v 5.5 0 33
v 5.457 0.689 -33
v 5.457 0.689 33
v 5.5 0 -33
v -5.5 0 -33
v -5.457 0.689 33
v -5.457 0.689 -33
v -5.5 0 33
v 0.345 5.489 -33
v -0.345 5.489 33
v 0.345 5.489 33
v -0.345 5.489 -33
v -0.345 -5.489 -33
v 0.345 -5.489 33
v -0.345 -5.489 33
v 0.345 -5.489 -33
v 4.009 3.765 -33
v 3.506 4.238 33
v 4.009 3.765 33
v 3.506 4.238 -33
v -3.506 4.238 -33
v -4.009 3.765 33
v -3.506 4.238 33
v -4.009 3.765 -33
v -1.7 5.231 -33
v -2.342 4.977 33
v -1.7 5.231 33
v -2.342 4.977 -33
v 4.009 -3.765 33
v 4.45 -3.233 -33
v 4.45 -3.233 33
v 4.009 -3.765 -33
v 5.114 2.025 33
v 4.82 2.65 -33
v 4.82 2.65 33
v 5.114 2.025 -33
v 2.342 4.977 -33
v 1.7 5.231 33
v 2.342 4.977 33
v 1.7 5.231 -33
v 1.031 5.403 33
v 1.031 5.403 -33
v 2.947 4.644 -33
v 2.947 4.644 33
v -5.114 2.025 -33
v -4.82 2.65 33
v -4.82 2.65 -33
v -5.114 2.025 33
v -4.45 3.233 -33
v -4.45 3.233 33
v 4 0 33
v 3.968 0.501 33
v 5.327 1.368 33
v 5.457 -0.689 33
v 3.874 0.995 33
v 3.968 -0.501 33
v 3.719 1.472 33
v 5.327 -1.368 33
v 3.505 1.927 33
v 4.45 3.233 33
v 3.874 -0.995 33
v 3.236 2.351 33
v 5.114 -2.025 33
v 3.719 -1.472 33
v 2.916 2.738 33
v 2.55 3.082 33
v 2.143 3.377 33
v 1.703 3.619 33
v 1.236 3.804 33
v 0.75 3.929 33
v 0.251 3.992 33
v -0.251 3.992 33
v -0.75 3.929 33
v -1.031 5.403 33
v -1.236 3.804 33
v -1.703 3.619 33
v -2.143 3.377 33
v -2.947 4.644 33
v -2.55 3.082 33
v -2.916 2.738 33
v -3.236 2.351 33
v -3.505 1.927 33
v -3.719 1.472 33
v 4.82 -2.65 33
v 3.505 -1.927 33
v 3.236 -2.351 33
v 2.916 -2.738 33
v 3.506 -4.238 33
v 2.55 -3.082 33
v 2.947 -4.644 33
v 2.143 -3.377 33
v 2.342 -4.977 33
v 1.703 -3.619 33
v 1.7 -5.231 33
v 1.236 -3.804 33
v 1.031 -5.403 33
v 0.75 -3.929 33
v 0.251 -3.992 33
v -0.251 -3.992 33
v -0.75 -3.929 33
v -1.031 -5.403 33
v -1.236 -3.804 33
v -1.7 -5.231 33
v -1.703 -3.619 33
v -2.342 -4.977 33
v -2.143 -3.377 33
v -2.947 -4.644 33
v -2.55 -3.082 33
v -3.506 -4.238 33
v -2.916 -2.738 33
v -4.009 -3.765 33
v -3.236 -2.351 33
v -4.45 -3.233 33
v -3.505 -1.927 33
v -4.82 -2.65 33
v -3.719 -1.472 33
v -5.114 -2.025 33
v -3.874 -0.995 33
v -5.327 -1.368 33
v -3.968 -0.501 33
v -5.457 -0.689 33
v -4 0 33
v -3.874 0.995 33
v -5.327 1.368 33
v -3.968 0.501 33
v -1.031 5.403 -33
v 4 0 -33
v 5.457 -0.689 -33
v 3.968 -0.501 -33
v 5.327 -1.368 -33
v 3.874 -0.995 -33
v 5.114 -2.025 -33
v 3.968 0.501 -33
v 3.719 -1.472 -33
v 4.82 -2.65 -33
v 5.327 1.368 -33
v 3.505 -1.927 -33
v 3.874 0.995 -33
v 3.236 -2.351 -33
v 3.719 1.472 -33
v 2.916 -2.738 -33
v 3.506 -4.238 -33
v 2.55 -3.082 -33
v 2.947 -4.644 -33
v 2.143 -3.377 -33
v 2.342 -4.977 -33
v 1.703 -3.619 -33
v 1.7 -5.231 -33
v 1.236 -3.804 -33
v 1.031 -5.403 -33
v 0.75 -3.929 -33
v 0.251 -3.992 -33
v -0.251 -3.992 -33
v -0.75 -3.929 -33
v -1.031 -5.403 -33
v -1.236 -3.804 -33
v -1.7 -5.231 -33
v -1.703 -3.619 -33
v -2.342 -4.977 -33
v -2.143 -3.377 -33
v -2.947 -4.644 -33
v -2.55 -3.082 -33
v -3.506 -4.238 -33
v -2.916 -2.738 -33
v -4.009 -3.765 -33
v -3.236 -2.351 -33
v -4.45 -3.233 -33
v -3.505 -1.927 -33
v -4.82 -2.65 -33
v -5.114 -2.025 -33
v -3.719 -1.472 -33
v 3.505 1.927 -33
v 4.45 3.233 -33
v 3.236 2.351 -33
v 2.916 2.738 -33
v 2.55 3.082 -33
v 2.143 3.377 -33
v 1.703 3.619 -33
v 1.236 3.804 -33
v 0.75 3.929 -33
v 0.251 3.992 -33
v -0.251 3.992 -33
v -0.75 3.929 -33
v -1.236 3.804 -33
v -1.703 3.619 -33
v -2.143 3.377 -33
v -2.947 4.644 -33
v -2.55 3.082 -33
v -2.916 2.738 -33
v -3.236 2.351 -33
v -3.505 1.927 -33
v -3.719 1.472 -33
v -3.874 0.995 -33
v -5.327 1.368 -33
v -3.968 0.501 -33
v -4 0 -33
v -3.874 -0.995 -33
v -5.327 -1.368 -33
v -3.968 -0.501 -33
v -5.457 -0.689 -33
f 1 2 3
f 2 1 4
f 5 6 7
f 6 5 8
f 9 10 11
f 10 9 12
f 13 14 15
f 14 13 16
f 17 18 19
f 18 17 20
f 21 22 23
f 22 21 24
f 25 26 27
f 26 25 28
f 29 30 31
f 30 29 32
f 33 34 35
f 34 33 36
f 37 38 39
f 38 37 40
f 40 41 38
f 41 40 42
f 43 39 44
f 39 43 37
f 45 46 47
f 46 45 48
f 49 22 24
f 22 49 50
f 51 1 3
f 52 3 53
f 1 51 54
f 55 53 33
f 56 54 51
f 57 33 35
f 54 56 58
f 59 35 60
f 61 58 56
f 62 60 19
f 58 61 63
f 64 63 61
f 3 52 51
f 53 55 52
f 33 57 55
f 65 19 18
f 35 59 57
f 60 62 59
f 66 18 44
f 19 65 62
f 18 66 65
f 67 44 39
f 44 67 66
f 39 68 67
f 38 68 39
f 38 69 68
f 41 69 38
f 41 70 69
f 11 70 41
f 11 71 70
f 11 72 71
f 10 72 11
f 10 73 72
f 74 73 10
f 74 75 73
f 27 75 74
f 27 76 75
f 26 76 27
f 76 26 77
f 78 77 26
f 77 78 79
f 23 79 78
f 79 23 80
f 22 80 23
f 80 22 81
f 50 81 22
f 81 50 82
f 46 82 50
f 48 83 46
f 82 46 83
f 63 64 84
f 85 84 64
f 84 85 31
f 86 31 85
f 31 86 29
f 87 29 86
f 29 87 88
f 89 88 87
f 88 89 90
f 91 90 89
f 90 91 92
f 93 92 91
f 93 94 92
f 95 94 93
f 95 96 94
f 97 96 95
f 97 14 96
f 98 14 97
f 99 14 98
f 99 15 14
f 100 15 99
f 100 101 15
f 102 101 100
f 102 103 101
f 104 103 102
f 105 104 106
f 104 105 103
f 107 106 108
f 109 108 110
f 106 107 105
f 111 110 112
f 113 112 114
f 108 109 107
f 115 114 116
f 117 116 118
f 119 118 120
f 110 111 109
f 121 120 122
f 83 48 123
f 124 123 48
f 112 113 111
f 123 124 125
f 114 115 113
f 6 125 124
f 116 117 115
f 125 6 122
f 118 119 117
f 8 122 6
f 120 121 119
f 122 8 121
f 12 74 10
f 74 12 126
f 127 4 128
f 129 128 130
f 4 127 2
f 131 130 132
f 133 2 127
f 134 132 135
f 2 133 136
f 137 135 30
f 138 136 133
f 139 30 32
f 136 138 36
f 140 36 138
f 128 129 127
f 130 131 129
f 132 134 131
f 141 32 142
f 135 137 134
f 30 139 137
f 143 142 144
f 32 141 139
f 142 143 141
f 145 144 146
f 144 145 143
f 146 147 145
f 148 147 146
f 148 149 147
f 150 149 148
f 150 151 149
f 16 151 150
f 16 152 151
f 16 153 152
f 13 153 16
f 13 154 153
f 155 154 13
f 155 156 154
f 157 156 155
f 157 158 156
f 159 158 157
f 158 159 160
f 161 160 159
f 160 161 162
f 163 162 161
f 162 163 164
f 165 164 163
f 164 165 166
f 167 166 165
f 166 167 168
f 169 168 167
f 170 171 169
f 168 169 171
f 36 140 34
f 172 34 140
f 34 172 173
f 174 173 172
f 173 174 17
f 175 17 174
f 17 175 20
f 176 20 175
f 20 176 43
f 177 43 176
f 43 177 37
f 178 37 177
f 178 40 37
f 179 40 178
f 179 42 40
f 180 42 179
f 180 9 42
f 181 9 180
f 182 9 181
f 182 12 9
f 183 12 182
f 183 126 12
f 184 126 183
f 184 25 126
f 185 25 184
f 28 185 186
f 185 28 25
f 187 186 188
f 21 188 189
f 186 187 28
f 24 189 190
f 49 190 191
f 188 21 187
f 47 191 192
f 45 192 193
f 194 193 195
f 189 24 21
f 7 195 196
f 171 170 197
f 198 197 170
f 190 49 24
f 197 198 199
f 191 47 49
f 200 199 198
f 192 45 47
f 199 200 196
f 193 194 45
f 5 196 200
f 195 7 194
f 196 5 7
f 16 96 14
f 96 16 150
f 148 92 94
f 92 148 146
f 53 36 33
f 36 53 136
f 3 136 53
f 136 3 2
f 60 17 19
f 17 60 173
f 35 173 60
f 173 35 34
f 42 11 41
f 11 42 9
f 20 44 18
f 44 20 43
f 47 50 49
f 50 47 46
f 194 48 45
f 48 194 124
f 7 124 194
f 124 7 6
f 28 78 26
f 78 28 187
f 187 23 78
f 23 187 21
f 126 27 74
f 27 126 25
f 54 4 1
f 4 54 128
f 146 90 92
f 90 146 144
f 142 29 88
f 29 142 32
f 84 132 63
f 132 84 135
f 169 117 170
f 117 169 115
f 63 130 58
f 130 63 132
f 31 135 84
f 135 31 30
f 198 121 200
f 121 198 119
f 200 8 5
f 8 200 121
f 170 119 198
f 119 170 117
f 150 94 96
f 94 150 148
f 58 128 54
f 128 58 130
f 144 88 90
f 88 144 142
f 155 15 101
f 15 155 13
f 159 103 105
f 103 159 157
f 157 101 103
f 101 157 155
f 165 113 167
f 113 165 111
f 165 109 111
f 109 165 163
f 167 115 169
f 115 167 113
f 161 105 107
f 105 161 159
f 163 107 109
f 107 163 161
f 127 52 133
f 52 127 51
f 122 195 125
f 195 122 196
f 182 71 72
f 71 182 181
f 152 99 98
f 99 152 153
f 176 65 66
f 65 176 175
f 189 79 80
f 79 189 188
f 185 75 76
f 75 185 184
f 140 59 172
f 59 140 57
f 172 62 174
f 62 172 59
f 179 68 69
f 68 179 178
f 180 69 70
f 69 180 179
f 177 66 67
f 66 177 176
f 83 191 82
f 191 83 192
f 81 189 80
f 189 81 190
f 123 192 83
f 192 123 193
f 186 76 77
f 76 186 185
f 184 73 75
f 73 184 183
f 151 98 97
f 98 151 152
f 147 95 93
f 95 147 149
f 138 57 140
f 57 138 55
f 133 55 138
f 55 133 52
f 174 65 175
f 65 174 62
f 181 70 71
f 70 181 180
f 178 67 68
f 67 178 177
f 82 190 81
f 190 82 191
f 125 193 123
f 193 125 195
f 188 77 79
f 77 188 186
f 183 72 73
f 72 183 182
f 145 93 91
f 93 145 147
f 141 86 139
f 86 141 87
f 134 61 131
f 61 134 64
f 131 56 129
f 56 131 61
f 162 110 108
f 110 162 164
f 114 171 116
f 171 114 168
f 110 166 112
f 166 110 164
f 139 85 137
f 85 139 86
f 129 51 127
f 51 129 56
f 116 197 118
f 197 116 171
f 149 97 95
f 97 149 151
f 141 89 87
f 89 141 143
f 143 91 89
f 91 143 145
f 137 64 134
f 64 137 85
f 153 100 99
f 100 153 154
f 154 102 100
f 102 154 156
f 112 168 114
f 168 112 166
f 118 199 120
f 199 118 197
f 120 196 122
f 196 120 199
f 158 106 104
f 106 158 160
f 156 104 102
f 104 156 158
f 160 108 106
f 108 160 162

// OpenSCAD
$fn = 50;


difference() {
	union() {
		translate(v = [0, 0, -33.0000000000]) {
			cylinder(h = 66, r = 5.5000000000);
		}
	}
	union() {
		translate(v = [0, 0, -100.0000000000]) {
			cylinder(h = 200, r = 4);
		}
	}
}
